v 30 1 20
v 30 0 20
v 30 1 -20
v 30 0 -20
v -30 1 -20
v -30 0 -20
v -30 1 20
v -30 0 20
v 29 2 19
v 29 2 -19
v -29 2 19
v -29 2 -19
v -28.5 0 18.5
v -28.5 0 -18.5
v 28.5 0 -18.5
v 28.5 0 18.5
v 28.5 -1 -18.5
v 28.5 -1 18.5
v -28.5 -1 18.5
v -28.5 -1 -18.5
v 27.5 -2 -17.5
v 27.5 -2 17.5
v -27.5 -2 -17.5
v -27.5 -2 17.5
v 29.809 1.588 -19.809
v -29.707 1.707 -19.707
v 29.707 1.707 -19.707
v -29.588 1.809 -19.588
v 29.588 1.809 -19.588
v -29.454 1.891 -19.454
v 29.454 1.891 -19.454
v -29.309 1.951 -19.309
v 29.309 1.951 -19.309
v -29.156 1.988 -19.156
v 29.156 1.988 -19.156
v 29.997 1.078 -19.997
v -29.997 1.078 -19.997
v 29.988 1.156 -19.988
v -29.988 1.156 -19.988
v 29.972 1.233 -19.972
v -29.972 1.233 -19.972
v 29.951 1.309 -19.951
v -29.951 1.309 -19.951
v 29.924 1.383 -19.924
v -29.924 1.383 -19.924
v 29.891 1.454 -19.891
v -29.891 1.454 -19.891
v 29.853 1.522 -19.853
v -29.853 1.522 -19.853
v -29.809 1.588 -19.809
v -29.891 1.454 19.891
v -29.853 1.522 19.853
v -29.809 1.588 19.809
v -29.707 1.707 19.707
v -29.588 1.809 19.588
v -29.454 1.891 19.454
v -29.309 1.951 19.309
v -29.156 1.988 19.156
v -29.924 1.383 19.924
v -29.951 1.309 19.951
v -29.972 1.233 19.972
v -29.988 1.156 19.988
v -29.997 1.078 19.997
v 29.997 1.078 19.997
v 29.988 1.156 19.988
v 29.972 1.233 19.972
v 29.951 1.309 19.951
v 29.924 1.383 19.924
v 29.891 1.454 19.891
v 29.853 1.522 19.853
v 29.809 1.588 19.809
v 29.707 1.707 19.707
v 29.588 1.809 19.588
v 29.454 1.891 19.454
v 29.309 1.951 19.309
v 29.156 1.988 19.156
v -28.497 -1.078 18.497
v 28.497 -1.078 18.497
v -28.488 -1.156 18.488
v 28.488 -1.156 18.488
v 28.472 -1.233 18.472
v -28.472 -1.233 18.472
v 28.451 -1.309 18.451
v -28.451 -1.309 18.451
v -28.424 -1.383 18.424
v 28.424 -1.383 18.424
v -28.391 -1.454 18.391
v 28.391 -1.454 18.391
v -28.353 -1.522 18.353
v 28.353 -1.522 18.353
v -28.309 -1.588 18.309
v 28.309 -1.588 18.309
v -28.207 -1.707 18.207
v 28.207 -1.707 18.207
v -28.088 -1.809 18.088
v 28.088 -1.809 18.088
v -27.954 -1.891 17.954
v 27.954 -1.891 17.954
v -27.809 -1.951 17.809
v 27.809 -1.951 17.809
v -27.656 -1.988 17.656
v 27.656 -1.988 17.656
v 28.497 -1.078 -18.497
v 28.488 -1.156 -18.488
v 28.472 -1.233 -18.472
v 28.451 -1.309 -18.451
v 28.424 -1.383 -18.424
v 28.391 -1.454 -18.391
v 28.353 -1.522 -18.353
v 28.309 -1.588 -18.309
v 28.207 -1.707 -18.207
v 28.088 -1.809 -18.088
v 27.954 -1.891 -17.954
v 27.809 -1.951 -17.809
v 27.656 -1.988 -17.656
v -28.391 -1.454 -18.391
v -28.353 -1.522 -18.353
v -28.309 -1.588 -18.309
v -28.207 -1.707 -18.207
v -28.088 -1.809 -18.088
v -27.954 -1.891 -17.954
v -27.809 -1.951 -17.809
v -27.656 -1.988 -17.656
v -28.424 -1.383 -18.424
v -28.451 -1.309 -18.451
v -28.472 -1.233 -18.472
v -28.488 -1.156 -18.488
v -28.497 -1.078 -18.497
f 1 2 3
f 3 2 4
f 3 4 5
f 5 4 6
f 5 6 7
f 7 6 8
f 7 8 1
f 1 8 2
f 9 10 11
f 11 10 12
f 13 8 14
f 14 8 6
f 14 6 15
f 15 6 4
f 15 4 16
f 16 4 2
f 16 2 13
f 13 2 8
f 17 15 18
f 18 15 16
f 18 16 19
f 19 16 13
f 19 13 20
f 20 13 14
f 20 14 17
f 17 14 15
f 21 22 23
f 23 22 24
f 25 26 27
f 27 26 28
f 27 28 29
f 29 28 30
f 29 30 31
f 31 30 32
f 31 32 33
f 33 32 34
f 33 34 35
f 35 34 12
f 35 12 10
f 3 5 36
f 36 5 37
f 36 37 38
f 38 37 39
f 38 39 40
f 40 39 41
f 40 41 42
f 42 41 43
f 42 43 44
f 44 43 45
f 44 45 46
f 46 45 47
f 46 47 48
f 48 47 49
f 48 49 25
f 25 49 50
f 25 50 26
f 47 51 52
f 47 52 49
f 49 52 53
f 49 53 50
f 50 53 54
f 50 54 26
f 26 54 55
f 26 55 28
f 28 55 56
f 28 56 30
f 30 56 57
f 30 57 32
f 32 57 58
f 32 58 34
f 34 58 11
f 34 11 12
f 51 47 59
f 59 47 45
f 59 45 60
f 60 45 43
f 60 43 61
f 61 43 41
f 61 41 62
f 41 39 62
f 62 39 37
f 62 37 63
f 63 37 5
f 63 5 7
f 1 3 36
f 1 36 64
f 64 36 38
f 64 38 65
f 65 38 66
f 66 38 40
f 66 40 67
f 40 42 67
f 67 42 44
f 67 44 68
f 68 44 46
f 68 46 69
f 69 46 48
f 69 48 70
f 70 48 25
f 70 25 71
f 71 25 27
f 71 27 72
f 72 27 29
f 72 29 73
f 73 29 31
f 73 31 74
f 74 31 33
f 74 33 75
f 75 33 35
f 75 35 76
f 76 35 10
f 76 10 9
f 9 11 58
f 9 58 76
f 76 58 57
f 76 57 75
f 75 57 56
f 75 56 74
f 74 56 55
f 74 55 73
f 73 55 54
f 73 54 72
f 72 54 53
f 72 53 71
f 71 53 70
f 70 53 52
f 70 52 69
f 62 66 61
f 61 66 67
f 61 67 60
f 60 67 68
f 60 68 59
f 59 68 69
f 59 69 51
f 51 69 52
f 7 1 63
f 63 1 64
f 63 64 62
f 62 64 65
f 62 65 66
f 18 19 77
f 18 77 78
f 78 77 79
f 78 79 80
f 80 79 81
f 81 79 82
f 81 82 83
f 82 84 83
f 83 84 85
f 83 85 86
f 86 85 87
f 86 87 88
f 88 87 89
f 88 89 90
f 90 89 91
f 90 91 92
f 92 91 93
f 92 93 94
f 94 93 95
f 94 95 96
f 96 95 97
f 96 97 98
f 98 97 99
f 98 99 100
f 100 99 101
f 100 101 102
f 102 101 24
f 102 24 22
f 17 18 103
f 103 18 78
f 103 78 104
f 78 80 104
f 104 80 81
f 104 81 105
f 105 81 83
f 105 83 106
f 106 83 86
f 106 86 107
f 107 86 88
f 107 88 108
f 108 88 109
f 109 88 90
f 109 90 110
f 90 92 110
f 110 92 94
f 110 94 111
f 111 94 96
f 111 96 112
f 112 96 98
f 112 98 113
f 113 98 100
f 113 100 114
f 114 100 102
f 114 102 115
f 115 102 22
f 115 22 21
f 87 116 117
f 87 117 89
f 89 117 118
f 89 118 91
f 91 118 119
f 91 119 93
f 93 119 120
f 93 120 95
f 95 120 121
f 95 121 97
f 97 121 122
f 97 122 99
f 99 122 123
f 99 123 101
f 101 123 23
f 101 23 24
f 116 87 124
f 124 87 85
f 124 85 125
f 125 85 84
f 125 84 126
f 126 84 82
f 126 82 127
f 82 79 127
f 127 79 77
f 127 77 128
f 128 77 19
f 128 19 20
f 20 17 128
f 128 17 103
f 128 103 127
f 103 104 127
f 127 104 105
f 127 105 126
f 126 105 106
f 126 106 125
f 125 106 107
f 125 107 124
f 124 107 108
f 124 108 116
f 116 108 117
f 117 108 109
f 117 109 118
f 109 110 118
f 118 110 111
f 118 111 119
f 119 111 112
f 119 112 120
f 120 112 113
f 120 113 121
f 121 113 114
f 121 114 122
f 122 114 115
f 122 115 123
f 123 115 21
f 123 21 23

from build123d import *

# Parameters (mm, degrees)
SKETCH1_W           = 60
SKETCH1_H           = 40
BOSS_EXTRUDE1_DEPTH = 2
SKETCH2_W           = 57
SKETCH2_H           = 37
BOSS_EXTRUDE2_DEPTH = 2
FILLET1_R           = 1
FILLET2_R           = 1


with BuildPart() as part:
    # Sketch1 → Boss-Extrude1 (new body)
    with BuildSketch(Plane(origin=(0, 0, 0), x_dir=(1, 0, 0), z_dir=(0, 1, 0))):
        Rectangle(SKETCH1_W, SKETCH1_H)
    extrude(amount=BOSS_EXTRUDE1_DEPTH)

    # Sketch2 → Boss-Extrude2 (add)
    with BuildSketch(Plane(origin=(0, 0, 0), x_dir=(1, 0, 0), z_dir=(0, 1, 0))):
        Rectangle(SKETCH2_W, SKETCH2_H)
    extrude(amount=-BOSS_EXTRUDE2_DEPTH)

    # Fillet1
    fillet1_edges = [part.edges().sort_by_distance(p)[0] for p in [
        (-30, 2, 0),
        (0, 2, 20),
        (30, 2, 0),
        (0, 2, -20),
    ]]
    fillet(fillet1_edges, radius=FILLET1_R)

    # Fillet2
    fillet2_edges = [part.edges().sort_by_distance(p)[0] for p in [
        (28.5, -2, 0),
        (0, -2, 18.5),
        (-28.5, -2, 0),
        (0, -2, -18.5),
    ]]
    fillet(fillet2_edges, radius=FILLET2_R)


solid = part.part
